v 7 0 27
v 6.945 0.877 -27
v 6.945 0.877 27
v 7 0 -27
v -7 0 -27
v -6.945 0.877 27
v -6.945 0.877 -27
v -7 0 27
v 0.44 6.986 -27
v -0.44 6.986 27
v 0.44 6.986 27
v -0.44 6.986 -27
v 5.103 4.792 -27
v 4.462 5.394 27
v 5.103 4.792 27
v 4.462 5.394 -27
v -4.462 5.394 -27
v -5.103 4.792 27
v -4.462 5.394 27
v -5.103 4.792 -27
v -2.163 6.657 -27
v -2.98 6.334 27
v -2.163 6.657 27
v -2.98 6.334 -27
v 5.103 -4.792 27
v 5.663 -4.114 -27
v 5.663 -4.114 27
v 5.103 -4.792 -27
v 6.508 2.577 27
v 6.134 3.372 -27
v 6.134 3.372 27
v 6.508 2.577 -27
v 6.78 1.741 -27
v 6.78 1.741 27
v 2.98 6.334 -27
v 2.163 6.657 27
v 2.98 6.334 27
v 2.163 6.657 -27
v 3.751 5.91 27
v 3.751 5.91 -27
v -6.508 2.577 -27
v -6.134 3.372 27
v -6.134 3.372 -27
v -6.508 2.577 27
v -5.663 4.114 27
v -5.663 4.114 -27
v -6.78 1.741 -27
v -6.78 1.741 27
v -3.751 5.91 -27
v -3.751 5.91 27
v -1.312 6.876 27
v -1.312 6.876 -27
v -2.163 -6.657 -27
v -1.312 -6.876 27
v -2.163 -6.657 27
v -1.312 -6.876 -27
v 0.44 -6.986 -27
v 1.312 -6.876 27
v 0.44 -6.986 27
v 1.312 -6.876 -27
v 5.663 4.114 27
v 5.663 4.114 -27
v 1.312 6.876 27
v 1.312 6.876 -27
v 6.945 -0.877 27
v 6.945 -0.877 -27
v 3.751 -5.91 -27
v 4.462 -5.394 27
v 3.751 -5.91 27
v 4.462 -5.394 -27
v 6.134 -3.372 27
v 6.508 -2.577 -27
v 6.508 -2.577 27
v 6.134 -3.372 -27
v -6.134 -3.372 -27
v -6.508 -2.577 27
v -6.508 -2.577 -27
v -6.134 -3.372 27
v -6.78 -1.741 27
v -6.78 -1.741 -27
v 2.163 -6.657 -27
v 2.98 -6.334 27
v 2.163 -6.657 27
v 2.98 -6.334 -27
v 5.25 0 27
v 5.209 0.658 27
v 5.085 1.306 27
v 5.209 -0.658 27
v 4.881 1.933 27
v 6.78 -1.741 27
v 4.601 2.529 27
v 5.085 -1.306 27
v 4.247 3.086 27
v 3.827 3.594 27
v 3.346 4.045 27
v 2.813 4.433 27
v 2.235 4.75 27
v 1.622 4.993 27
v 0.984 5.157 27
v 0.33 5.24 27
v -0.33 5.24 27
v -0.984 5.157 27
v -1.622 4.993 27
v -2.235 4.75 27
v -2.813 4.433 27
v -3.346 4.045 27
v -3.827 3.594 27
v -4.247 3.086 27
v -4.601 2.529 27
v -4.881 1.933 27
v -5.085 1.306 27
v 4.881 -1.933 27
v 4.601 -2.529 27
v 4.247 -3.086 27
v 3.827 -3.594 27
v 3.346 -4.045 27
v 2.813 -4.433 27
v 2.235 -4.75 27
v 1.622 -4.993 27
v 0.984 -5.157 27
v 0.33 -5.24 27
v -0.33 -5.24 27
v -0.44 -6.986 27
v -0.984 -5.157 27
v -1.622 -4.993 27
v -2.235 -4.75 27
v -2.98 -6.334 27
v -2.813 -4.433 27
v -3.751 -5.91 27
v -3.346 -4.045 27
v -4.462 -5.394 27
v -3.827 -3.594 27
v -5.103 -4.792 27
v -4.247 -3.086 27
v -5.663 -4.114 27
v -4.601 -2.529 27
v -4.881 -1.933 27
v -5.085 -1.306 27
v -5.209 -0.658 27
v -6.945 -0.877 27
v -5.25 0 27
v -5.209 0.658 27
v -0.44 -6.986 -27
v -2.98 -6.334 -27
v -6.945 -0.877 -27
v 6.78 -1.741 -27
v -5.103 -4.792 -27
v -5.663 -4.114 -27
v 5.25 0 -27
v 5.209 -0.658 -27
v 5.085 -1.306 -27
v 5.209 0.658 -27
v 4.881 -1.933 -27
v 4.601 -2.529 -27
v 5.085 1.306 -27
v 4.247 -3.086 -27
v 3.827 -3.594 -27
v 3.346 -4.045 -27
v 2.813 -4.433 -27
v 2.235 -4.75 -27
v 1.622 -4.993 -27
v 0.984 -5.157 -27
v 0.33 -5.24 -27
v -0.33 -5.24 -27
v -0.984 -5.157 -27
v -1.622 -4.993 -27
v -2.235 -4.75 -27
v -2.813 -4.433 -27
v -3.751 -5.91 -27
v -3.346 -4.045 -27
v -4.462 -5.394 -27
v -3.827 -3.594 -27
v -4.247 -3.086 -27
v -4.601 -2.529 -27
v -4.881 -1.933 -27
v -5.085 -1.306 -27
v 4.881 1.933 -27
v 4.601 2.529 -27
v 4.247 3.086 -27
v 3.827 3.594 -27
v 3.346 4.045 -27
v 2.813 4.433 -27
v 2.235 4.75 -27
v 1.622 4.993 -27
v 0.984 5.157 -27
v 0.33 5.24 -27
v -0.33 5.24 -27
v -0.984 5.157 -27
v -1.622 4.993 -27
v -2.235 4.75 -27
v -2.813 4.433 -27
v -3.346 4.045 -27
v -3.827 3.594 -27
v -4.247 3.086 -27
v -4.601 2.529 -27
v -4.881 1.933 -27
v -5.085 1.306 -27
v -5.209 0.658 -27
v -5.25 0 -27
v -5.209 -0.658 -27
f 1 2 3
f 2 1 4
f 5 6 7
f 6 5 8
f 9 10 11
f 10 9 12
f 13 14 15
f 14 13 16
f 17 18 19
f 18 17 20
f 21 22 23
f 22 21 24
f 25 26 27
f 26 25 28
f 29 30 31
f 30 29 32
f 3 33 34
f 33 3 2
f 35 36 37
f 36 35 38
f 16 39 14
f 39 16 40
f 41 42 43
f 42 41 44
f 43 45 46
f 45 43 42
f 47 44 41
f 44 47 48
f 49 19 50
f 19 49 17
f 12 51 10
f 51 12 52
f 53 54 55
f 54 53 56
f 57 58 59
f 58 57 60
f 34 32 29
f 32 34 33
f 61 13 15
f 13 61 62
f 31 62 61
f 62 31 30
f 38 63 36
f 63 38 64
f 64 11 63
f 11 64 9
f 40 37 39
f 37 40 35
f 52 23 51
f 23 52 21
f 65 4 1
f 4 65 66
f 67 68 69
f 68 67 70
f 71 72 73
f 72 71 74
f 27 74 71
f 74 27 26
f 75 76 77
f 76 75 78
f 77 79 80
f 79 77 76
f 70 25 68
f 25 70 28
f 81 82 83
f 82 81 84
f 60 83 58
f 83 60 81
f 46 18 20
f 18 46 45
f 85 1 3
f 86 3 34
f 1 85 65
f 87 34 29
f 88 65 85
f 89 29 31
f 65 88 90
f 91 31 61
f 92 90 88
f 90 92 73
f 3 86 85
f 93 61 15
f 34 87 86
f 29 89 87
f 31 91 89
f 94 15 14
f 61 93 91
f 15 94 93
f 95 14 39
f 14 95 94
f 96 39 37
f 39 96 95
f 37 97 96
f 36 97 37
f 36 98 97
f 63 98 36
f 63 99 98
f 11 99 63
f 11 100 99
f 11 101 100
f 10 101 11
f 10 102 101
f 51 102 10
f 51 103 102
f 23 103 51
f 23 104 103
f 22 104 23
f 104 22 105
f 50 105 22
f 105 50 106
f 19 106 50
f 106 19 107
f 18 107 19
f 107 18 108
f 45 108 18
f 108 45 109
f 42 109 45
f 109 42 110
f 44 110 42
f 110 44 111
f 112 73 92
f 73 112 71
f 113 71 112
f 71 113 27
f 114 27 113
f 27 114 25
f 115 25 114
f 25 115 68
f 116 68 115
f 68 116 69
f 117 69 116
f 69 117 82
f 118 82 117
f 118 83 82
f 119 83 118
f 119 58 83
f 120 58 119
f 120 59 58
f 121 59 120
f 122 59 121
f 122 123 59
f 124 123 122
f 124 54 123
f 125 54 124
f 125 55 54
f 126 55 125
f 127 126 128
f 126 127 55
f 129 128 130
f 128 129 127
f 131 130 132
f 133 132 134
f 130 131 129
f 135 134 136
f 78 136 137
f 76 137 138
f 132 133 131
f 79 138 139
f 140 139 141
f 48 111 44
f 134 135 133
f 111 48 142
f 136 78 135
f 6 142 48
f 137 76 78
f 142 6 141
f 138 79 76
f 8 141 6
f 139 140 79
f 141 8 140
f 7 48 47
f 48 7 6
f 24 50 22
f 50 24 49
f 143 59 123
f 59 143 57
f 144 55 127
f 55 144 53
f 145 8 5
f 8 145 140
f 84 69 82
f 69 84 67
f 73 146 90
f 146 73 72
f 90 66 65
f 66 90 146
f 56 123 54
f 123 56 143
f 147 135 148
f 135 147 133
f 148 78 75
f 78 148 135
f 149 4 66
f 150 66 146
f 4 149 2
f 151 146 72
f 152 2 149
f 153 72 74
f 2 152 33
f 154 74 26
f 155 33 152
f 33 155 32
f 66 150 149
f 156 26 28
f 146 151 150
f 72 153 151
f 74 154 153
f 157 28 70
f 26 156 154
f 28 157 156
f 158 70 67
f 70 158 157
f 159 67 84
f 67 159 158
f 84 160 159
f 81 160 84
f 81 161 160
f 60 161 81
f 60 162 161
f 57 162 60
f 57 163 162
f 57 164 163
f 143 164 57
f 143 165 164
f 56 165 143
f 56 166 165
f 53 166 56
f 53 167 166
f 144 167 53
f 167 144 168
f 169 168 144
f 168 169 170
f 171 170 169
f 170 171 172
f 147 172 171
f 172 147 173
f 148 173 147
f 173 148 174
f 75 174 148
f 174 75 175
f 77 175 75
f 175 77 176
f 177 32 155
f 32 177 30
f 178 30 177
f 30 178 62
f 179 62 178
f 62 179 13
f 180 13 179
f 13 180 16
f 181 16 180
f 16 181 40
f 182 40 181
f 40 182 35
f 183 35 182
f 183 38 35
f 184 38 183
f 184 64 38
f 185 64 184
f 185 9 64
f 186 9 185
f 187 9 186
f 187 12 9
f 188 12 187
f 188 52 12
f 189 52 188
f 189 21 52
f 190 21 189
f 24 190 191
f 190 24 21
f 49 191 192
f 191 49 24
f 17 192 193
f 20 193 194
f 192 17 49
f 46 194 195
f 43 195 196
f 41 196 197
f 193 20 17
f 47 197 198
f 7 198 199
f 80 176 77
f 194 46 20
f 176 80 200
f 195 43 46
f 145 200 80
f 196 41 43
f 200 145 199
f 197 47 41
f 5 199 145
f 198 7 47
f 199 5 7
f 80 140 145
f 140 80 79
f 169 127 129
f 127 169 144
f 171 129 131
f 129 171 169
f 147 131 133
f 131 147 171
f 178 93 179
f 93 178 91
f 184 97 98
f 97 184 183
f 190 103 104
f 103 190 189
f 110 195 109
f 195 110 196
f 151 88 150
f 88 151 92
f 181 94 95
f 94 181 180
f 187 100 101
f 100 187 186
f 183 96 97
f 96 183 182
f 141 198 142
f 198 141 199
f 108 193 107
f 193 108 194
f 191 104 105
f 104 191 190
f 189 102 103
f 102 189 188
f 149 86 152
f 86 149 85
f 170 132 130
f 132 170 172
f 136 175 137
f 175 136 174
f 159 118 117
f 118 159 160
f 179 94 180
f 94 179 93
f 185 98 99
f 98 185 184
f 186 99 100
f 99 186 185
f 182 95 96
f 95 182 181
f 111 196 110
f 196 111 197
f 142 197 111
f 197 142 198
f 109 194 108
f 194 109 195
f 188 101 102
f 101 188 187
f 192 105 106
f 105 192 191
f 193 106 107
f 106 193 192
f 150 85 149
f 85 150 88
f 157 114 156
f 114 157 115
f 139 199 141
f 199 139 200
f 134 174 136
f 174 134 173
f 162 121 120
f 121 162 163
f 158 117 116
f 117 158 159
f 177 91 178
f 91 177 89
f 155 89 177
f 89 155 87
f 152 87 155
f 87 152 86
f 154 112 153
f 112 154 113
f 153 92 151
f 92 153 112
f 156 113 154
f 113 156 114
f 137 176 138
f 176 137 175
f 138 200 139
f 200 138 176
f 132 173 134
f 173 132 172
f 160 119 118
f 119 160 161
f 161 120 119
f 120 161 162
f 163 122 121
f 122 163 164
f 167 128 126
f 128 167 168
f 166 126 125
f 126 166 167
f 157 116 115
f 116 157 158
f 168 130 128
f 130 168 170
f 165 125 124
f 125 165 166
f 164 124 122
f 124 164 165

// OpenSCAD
$fn = 50;


difference() {
	union() {
		translate(v = [0, 0, -27.0000000000]) {
			cylinder(h = 54, r = 7.0000000000);
		}
	}
	union() {
		translate(v = [0, 0, -100.0000000000]) {
			cylinder(h = 200, r = 5.2500000000);
		}
	}
}
